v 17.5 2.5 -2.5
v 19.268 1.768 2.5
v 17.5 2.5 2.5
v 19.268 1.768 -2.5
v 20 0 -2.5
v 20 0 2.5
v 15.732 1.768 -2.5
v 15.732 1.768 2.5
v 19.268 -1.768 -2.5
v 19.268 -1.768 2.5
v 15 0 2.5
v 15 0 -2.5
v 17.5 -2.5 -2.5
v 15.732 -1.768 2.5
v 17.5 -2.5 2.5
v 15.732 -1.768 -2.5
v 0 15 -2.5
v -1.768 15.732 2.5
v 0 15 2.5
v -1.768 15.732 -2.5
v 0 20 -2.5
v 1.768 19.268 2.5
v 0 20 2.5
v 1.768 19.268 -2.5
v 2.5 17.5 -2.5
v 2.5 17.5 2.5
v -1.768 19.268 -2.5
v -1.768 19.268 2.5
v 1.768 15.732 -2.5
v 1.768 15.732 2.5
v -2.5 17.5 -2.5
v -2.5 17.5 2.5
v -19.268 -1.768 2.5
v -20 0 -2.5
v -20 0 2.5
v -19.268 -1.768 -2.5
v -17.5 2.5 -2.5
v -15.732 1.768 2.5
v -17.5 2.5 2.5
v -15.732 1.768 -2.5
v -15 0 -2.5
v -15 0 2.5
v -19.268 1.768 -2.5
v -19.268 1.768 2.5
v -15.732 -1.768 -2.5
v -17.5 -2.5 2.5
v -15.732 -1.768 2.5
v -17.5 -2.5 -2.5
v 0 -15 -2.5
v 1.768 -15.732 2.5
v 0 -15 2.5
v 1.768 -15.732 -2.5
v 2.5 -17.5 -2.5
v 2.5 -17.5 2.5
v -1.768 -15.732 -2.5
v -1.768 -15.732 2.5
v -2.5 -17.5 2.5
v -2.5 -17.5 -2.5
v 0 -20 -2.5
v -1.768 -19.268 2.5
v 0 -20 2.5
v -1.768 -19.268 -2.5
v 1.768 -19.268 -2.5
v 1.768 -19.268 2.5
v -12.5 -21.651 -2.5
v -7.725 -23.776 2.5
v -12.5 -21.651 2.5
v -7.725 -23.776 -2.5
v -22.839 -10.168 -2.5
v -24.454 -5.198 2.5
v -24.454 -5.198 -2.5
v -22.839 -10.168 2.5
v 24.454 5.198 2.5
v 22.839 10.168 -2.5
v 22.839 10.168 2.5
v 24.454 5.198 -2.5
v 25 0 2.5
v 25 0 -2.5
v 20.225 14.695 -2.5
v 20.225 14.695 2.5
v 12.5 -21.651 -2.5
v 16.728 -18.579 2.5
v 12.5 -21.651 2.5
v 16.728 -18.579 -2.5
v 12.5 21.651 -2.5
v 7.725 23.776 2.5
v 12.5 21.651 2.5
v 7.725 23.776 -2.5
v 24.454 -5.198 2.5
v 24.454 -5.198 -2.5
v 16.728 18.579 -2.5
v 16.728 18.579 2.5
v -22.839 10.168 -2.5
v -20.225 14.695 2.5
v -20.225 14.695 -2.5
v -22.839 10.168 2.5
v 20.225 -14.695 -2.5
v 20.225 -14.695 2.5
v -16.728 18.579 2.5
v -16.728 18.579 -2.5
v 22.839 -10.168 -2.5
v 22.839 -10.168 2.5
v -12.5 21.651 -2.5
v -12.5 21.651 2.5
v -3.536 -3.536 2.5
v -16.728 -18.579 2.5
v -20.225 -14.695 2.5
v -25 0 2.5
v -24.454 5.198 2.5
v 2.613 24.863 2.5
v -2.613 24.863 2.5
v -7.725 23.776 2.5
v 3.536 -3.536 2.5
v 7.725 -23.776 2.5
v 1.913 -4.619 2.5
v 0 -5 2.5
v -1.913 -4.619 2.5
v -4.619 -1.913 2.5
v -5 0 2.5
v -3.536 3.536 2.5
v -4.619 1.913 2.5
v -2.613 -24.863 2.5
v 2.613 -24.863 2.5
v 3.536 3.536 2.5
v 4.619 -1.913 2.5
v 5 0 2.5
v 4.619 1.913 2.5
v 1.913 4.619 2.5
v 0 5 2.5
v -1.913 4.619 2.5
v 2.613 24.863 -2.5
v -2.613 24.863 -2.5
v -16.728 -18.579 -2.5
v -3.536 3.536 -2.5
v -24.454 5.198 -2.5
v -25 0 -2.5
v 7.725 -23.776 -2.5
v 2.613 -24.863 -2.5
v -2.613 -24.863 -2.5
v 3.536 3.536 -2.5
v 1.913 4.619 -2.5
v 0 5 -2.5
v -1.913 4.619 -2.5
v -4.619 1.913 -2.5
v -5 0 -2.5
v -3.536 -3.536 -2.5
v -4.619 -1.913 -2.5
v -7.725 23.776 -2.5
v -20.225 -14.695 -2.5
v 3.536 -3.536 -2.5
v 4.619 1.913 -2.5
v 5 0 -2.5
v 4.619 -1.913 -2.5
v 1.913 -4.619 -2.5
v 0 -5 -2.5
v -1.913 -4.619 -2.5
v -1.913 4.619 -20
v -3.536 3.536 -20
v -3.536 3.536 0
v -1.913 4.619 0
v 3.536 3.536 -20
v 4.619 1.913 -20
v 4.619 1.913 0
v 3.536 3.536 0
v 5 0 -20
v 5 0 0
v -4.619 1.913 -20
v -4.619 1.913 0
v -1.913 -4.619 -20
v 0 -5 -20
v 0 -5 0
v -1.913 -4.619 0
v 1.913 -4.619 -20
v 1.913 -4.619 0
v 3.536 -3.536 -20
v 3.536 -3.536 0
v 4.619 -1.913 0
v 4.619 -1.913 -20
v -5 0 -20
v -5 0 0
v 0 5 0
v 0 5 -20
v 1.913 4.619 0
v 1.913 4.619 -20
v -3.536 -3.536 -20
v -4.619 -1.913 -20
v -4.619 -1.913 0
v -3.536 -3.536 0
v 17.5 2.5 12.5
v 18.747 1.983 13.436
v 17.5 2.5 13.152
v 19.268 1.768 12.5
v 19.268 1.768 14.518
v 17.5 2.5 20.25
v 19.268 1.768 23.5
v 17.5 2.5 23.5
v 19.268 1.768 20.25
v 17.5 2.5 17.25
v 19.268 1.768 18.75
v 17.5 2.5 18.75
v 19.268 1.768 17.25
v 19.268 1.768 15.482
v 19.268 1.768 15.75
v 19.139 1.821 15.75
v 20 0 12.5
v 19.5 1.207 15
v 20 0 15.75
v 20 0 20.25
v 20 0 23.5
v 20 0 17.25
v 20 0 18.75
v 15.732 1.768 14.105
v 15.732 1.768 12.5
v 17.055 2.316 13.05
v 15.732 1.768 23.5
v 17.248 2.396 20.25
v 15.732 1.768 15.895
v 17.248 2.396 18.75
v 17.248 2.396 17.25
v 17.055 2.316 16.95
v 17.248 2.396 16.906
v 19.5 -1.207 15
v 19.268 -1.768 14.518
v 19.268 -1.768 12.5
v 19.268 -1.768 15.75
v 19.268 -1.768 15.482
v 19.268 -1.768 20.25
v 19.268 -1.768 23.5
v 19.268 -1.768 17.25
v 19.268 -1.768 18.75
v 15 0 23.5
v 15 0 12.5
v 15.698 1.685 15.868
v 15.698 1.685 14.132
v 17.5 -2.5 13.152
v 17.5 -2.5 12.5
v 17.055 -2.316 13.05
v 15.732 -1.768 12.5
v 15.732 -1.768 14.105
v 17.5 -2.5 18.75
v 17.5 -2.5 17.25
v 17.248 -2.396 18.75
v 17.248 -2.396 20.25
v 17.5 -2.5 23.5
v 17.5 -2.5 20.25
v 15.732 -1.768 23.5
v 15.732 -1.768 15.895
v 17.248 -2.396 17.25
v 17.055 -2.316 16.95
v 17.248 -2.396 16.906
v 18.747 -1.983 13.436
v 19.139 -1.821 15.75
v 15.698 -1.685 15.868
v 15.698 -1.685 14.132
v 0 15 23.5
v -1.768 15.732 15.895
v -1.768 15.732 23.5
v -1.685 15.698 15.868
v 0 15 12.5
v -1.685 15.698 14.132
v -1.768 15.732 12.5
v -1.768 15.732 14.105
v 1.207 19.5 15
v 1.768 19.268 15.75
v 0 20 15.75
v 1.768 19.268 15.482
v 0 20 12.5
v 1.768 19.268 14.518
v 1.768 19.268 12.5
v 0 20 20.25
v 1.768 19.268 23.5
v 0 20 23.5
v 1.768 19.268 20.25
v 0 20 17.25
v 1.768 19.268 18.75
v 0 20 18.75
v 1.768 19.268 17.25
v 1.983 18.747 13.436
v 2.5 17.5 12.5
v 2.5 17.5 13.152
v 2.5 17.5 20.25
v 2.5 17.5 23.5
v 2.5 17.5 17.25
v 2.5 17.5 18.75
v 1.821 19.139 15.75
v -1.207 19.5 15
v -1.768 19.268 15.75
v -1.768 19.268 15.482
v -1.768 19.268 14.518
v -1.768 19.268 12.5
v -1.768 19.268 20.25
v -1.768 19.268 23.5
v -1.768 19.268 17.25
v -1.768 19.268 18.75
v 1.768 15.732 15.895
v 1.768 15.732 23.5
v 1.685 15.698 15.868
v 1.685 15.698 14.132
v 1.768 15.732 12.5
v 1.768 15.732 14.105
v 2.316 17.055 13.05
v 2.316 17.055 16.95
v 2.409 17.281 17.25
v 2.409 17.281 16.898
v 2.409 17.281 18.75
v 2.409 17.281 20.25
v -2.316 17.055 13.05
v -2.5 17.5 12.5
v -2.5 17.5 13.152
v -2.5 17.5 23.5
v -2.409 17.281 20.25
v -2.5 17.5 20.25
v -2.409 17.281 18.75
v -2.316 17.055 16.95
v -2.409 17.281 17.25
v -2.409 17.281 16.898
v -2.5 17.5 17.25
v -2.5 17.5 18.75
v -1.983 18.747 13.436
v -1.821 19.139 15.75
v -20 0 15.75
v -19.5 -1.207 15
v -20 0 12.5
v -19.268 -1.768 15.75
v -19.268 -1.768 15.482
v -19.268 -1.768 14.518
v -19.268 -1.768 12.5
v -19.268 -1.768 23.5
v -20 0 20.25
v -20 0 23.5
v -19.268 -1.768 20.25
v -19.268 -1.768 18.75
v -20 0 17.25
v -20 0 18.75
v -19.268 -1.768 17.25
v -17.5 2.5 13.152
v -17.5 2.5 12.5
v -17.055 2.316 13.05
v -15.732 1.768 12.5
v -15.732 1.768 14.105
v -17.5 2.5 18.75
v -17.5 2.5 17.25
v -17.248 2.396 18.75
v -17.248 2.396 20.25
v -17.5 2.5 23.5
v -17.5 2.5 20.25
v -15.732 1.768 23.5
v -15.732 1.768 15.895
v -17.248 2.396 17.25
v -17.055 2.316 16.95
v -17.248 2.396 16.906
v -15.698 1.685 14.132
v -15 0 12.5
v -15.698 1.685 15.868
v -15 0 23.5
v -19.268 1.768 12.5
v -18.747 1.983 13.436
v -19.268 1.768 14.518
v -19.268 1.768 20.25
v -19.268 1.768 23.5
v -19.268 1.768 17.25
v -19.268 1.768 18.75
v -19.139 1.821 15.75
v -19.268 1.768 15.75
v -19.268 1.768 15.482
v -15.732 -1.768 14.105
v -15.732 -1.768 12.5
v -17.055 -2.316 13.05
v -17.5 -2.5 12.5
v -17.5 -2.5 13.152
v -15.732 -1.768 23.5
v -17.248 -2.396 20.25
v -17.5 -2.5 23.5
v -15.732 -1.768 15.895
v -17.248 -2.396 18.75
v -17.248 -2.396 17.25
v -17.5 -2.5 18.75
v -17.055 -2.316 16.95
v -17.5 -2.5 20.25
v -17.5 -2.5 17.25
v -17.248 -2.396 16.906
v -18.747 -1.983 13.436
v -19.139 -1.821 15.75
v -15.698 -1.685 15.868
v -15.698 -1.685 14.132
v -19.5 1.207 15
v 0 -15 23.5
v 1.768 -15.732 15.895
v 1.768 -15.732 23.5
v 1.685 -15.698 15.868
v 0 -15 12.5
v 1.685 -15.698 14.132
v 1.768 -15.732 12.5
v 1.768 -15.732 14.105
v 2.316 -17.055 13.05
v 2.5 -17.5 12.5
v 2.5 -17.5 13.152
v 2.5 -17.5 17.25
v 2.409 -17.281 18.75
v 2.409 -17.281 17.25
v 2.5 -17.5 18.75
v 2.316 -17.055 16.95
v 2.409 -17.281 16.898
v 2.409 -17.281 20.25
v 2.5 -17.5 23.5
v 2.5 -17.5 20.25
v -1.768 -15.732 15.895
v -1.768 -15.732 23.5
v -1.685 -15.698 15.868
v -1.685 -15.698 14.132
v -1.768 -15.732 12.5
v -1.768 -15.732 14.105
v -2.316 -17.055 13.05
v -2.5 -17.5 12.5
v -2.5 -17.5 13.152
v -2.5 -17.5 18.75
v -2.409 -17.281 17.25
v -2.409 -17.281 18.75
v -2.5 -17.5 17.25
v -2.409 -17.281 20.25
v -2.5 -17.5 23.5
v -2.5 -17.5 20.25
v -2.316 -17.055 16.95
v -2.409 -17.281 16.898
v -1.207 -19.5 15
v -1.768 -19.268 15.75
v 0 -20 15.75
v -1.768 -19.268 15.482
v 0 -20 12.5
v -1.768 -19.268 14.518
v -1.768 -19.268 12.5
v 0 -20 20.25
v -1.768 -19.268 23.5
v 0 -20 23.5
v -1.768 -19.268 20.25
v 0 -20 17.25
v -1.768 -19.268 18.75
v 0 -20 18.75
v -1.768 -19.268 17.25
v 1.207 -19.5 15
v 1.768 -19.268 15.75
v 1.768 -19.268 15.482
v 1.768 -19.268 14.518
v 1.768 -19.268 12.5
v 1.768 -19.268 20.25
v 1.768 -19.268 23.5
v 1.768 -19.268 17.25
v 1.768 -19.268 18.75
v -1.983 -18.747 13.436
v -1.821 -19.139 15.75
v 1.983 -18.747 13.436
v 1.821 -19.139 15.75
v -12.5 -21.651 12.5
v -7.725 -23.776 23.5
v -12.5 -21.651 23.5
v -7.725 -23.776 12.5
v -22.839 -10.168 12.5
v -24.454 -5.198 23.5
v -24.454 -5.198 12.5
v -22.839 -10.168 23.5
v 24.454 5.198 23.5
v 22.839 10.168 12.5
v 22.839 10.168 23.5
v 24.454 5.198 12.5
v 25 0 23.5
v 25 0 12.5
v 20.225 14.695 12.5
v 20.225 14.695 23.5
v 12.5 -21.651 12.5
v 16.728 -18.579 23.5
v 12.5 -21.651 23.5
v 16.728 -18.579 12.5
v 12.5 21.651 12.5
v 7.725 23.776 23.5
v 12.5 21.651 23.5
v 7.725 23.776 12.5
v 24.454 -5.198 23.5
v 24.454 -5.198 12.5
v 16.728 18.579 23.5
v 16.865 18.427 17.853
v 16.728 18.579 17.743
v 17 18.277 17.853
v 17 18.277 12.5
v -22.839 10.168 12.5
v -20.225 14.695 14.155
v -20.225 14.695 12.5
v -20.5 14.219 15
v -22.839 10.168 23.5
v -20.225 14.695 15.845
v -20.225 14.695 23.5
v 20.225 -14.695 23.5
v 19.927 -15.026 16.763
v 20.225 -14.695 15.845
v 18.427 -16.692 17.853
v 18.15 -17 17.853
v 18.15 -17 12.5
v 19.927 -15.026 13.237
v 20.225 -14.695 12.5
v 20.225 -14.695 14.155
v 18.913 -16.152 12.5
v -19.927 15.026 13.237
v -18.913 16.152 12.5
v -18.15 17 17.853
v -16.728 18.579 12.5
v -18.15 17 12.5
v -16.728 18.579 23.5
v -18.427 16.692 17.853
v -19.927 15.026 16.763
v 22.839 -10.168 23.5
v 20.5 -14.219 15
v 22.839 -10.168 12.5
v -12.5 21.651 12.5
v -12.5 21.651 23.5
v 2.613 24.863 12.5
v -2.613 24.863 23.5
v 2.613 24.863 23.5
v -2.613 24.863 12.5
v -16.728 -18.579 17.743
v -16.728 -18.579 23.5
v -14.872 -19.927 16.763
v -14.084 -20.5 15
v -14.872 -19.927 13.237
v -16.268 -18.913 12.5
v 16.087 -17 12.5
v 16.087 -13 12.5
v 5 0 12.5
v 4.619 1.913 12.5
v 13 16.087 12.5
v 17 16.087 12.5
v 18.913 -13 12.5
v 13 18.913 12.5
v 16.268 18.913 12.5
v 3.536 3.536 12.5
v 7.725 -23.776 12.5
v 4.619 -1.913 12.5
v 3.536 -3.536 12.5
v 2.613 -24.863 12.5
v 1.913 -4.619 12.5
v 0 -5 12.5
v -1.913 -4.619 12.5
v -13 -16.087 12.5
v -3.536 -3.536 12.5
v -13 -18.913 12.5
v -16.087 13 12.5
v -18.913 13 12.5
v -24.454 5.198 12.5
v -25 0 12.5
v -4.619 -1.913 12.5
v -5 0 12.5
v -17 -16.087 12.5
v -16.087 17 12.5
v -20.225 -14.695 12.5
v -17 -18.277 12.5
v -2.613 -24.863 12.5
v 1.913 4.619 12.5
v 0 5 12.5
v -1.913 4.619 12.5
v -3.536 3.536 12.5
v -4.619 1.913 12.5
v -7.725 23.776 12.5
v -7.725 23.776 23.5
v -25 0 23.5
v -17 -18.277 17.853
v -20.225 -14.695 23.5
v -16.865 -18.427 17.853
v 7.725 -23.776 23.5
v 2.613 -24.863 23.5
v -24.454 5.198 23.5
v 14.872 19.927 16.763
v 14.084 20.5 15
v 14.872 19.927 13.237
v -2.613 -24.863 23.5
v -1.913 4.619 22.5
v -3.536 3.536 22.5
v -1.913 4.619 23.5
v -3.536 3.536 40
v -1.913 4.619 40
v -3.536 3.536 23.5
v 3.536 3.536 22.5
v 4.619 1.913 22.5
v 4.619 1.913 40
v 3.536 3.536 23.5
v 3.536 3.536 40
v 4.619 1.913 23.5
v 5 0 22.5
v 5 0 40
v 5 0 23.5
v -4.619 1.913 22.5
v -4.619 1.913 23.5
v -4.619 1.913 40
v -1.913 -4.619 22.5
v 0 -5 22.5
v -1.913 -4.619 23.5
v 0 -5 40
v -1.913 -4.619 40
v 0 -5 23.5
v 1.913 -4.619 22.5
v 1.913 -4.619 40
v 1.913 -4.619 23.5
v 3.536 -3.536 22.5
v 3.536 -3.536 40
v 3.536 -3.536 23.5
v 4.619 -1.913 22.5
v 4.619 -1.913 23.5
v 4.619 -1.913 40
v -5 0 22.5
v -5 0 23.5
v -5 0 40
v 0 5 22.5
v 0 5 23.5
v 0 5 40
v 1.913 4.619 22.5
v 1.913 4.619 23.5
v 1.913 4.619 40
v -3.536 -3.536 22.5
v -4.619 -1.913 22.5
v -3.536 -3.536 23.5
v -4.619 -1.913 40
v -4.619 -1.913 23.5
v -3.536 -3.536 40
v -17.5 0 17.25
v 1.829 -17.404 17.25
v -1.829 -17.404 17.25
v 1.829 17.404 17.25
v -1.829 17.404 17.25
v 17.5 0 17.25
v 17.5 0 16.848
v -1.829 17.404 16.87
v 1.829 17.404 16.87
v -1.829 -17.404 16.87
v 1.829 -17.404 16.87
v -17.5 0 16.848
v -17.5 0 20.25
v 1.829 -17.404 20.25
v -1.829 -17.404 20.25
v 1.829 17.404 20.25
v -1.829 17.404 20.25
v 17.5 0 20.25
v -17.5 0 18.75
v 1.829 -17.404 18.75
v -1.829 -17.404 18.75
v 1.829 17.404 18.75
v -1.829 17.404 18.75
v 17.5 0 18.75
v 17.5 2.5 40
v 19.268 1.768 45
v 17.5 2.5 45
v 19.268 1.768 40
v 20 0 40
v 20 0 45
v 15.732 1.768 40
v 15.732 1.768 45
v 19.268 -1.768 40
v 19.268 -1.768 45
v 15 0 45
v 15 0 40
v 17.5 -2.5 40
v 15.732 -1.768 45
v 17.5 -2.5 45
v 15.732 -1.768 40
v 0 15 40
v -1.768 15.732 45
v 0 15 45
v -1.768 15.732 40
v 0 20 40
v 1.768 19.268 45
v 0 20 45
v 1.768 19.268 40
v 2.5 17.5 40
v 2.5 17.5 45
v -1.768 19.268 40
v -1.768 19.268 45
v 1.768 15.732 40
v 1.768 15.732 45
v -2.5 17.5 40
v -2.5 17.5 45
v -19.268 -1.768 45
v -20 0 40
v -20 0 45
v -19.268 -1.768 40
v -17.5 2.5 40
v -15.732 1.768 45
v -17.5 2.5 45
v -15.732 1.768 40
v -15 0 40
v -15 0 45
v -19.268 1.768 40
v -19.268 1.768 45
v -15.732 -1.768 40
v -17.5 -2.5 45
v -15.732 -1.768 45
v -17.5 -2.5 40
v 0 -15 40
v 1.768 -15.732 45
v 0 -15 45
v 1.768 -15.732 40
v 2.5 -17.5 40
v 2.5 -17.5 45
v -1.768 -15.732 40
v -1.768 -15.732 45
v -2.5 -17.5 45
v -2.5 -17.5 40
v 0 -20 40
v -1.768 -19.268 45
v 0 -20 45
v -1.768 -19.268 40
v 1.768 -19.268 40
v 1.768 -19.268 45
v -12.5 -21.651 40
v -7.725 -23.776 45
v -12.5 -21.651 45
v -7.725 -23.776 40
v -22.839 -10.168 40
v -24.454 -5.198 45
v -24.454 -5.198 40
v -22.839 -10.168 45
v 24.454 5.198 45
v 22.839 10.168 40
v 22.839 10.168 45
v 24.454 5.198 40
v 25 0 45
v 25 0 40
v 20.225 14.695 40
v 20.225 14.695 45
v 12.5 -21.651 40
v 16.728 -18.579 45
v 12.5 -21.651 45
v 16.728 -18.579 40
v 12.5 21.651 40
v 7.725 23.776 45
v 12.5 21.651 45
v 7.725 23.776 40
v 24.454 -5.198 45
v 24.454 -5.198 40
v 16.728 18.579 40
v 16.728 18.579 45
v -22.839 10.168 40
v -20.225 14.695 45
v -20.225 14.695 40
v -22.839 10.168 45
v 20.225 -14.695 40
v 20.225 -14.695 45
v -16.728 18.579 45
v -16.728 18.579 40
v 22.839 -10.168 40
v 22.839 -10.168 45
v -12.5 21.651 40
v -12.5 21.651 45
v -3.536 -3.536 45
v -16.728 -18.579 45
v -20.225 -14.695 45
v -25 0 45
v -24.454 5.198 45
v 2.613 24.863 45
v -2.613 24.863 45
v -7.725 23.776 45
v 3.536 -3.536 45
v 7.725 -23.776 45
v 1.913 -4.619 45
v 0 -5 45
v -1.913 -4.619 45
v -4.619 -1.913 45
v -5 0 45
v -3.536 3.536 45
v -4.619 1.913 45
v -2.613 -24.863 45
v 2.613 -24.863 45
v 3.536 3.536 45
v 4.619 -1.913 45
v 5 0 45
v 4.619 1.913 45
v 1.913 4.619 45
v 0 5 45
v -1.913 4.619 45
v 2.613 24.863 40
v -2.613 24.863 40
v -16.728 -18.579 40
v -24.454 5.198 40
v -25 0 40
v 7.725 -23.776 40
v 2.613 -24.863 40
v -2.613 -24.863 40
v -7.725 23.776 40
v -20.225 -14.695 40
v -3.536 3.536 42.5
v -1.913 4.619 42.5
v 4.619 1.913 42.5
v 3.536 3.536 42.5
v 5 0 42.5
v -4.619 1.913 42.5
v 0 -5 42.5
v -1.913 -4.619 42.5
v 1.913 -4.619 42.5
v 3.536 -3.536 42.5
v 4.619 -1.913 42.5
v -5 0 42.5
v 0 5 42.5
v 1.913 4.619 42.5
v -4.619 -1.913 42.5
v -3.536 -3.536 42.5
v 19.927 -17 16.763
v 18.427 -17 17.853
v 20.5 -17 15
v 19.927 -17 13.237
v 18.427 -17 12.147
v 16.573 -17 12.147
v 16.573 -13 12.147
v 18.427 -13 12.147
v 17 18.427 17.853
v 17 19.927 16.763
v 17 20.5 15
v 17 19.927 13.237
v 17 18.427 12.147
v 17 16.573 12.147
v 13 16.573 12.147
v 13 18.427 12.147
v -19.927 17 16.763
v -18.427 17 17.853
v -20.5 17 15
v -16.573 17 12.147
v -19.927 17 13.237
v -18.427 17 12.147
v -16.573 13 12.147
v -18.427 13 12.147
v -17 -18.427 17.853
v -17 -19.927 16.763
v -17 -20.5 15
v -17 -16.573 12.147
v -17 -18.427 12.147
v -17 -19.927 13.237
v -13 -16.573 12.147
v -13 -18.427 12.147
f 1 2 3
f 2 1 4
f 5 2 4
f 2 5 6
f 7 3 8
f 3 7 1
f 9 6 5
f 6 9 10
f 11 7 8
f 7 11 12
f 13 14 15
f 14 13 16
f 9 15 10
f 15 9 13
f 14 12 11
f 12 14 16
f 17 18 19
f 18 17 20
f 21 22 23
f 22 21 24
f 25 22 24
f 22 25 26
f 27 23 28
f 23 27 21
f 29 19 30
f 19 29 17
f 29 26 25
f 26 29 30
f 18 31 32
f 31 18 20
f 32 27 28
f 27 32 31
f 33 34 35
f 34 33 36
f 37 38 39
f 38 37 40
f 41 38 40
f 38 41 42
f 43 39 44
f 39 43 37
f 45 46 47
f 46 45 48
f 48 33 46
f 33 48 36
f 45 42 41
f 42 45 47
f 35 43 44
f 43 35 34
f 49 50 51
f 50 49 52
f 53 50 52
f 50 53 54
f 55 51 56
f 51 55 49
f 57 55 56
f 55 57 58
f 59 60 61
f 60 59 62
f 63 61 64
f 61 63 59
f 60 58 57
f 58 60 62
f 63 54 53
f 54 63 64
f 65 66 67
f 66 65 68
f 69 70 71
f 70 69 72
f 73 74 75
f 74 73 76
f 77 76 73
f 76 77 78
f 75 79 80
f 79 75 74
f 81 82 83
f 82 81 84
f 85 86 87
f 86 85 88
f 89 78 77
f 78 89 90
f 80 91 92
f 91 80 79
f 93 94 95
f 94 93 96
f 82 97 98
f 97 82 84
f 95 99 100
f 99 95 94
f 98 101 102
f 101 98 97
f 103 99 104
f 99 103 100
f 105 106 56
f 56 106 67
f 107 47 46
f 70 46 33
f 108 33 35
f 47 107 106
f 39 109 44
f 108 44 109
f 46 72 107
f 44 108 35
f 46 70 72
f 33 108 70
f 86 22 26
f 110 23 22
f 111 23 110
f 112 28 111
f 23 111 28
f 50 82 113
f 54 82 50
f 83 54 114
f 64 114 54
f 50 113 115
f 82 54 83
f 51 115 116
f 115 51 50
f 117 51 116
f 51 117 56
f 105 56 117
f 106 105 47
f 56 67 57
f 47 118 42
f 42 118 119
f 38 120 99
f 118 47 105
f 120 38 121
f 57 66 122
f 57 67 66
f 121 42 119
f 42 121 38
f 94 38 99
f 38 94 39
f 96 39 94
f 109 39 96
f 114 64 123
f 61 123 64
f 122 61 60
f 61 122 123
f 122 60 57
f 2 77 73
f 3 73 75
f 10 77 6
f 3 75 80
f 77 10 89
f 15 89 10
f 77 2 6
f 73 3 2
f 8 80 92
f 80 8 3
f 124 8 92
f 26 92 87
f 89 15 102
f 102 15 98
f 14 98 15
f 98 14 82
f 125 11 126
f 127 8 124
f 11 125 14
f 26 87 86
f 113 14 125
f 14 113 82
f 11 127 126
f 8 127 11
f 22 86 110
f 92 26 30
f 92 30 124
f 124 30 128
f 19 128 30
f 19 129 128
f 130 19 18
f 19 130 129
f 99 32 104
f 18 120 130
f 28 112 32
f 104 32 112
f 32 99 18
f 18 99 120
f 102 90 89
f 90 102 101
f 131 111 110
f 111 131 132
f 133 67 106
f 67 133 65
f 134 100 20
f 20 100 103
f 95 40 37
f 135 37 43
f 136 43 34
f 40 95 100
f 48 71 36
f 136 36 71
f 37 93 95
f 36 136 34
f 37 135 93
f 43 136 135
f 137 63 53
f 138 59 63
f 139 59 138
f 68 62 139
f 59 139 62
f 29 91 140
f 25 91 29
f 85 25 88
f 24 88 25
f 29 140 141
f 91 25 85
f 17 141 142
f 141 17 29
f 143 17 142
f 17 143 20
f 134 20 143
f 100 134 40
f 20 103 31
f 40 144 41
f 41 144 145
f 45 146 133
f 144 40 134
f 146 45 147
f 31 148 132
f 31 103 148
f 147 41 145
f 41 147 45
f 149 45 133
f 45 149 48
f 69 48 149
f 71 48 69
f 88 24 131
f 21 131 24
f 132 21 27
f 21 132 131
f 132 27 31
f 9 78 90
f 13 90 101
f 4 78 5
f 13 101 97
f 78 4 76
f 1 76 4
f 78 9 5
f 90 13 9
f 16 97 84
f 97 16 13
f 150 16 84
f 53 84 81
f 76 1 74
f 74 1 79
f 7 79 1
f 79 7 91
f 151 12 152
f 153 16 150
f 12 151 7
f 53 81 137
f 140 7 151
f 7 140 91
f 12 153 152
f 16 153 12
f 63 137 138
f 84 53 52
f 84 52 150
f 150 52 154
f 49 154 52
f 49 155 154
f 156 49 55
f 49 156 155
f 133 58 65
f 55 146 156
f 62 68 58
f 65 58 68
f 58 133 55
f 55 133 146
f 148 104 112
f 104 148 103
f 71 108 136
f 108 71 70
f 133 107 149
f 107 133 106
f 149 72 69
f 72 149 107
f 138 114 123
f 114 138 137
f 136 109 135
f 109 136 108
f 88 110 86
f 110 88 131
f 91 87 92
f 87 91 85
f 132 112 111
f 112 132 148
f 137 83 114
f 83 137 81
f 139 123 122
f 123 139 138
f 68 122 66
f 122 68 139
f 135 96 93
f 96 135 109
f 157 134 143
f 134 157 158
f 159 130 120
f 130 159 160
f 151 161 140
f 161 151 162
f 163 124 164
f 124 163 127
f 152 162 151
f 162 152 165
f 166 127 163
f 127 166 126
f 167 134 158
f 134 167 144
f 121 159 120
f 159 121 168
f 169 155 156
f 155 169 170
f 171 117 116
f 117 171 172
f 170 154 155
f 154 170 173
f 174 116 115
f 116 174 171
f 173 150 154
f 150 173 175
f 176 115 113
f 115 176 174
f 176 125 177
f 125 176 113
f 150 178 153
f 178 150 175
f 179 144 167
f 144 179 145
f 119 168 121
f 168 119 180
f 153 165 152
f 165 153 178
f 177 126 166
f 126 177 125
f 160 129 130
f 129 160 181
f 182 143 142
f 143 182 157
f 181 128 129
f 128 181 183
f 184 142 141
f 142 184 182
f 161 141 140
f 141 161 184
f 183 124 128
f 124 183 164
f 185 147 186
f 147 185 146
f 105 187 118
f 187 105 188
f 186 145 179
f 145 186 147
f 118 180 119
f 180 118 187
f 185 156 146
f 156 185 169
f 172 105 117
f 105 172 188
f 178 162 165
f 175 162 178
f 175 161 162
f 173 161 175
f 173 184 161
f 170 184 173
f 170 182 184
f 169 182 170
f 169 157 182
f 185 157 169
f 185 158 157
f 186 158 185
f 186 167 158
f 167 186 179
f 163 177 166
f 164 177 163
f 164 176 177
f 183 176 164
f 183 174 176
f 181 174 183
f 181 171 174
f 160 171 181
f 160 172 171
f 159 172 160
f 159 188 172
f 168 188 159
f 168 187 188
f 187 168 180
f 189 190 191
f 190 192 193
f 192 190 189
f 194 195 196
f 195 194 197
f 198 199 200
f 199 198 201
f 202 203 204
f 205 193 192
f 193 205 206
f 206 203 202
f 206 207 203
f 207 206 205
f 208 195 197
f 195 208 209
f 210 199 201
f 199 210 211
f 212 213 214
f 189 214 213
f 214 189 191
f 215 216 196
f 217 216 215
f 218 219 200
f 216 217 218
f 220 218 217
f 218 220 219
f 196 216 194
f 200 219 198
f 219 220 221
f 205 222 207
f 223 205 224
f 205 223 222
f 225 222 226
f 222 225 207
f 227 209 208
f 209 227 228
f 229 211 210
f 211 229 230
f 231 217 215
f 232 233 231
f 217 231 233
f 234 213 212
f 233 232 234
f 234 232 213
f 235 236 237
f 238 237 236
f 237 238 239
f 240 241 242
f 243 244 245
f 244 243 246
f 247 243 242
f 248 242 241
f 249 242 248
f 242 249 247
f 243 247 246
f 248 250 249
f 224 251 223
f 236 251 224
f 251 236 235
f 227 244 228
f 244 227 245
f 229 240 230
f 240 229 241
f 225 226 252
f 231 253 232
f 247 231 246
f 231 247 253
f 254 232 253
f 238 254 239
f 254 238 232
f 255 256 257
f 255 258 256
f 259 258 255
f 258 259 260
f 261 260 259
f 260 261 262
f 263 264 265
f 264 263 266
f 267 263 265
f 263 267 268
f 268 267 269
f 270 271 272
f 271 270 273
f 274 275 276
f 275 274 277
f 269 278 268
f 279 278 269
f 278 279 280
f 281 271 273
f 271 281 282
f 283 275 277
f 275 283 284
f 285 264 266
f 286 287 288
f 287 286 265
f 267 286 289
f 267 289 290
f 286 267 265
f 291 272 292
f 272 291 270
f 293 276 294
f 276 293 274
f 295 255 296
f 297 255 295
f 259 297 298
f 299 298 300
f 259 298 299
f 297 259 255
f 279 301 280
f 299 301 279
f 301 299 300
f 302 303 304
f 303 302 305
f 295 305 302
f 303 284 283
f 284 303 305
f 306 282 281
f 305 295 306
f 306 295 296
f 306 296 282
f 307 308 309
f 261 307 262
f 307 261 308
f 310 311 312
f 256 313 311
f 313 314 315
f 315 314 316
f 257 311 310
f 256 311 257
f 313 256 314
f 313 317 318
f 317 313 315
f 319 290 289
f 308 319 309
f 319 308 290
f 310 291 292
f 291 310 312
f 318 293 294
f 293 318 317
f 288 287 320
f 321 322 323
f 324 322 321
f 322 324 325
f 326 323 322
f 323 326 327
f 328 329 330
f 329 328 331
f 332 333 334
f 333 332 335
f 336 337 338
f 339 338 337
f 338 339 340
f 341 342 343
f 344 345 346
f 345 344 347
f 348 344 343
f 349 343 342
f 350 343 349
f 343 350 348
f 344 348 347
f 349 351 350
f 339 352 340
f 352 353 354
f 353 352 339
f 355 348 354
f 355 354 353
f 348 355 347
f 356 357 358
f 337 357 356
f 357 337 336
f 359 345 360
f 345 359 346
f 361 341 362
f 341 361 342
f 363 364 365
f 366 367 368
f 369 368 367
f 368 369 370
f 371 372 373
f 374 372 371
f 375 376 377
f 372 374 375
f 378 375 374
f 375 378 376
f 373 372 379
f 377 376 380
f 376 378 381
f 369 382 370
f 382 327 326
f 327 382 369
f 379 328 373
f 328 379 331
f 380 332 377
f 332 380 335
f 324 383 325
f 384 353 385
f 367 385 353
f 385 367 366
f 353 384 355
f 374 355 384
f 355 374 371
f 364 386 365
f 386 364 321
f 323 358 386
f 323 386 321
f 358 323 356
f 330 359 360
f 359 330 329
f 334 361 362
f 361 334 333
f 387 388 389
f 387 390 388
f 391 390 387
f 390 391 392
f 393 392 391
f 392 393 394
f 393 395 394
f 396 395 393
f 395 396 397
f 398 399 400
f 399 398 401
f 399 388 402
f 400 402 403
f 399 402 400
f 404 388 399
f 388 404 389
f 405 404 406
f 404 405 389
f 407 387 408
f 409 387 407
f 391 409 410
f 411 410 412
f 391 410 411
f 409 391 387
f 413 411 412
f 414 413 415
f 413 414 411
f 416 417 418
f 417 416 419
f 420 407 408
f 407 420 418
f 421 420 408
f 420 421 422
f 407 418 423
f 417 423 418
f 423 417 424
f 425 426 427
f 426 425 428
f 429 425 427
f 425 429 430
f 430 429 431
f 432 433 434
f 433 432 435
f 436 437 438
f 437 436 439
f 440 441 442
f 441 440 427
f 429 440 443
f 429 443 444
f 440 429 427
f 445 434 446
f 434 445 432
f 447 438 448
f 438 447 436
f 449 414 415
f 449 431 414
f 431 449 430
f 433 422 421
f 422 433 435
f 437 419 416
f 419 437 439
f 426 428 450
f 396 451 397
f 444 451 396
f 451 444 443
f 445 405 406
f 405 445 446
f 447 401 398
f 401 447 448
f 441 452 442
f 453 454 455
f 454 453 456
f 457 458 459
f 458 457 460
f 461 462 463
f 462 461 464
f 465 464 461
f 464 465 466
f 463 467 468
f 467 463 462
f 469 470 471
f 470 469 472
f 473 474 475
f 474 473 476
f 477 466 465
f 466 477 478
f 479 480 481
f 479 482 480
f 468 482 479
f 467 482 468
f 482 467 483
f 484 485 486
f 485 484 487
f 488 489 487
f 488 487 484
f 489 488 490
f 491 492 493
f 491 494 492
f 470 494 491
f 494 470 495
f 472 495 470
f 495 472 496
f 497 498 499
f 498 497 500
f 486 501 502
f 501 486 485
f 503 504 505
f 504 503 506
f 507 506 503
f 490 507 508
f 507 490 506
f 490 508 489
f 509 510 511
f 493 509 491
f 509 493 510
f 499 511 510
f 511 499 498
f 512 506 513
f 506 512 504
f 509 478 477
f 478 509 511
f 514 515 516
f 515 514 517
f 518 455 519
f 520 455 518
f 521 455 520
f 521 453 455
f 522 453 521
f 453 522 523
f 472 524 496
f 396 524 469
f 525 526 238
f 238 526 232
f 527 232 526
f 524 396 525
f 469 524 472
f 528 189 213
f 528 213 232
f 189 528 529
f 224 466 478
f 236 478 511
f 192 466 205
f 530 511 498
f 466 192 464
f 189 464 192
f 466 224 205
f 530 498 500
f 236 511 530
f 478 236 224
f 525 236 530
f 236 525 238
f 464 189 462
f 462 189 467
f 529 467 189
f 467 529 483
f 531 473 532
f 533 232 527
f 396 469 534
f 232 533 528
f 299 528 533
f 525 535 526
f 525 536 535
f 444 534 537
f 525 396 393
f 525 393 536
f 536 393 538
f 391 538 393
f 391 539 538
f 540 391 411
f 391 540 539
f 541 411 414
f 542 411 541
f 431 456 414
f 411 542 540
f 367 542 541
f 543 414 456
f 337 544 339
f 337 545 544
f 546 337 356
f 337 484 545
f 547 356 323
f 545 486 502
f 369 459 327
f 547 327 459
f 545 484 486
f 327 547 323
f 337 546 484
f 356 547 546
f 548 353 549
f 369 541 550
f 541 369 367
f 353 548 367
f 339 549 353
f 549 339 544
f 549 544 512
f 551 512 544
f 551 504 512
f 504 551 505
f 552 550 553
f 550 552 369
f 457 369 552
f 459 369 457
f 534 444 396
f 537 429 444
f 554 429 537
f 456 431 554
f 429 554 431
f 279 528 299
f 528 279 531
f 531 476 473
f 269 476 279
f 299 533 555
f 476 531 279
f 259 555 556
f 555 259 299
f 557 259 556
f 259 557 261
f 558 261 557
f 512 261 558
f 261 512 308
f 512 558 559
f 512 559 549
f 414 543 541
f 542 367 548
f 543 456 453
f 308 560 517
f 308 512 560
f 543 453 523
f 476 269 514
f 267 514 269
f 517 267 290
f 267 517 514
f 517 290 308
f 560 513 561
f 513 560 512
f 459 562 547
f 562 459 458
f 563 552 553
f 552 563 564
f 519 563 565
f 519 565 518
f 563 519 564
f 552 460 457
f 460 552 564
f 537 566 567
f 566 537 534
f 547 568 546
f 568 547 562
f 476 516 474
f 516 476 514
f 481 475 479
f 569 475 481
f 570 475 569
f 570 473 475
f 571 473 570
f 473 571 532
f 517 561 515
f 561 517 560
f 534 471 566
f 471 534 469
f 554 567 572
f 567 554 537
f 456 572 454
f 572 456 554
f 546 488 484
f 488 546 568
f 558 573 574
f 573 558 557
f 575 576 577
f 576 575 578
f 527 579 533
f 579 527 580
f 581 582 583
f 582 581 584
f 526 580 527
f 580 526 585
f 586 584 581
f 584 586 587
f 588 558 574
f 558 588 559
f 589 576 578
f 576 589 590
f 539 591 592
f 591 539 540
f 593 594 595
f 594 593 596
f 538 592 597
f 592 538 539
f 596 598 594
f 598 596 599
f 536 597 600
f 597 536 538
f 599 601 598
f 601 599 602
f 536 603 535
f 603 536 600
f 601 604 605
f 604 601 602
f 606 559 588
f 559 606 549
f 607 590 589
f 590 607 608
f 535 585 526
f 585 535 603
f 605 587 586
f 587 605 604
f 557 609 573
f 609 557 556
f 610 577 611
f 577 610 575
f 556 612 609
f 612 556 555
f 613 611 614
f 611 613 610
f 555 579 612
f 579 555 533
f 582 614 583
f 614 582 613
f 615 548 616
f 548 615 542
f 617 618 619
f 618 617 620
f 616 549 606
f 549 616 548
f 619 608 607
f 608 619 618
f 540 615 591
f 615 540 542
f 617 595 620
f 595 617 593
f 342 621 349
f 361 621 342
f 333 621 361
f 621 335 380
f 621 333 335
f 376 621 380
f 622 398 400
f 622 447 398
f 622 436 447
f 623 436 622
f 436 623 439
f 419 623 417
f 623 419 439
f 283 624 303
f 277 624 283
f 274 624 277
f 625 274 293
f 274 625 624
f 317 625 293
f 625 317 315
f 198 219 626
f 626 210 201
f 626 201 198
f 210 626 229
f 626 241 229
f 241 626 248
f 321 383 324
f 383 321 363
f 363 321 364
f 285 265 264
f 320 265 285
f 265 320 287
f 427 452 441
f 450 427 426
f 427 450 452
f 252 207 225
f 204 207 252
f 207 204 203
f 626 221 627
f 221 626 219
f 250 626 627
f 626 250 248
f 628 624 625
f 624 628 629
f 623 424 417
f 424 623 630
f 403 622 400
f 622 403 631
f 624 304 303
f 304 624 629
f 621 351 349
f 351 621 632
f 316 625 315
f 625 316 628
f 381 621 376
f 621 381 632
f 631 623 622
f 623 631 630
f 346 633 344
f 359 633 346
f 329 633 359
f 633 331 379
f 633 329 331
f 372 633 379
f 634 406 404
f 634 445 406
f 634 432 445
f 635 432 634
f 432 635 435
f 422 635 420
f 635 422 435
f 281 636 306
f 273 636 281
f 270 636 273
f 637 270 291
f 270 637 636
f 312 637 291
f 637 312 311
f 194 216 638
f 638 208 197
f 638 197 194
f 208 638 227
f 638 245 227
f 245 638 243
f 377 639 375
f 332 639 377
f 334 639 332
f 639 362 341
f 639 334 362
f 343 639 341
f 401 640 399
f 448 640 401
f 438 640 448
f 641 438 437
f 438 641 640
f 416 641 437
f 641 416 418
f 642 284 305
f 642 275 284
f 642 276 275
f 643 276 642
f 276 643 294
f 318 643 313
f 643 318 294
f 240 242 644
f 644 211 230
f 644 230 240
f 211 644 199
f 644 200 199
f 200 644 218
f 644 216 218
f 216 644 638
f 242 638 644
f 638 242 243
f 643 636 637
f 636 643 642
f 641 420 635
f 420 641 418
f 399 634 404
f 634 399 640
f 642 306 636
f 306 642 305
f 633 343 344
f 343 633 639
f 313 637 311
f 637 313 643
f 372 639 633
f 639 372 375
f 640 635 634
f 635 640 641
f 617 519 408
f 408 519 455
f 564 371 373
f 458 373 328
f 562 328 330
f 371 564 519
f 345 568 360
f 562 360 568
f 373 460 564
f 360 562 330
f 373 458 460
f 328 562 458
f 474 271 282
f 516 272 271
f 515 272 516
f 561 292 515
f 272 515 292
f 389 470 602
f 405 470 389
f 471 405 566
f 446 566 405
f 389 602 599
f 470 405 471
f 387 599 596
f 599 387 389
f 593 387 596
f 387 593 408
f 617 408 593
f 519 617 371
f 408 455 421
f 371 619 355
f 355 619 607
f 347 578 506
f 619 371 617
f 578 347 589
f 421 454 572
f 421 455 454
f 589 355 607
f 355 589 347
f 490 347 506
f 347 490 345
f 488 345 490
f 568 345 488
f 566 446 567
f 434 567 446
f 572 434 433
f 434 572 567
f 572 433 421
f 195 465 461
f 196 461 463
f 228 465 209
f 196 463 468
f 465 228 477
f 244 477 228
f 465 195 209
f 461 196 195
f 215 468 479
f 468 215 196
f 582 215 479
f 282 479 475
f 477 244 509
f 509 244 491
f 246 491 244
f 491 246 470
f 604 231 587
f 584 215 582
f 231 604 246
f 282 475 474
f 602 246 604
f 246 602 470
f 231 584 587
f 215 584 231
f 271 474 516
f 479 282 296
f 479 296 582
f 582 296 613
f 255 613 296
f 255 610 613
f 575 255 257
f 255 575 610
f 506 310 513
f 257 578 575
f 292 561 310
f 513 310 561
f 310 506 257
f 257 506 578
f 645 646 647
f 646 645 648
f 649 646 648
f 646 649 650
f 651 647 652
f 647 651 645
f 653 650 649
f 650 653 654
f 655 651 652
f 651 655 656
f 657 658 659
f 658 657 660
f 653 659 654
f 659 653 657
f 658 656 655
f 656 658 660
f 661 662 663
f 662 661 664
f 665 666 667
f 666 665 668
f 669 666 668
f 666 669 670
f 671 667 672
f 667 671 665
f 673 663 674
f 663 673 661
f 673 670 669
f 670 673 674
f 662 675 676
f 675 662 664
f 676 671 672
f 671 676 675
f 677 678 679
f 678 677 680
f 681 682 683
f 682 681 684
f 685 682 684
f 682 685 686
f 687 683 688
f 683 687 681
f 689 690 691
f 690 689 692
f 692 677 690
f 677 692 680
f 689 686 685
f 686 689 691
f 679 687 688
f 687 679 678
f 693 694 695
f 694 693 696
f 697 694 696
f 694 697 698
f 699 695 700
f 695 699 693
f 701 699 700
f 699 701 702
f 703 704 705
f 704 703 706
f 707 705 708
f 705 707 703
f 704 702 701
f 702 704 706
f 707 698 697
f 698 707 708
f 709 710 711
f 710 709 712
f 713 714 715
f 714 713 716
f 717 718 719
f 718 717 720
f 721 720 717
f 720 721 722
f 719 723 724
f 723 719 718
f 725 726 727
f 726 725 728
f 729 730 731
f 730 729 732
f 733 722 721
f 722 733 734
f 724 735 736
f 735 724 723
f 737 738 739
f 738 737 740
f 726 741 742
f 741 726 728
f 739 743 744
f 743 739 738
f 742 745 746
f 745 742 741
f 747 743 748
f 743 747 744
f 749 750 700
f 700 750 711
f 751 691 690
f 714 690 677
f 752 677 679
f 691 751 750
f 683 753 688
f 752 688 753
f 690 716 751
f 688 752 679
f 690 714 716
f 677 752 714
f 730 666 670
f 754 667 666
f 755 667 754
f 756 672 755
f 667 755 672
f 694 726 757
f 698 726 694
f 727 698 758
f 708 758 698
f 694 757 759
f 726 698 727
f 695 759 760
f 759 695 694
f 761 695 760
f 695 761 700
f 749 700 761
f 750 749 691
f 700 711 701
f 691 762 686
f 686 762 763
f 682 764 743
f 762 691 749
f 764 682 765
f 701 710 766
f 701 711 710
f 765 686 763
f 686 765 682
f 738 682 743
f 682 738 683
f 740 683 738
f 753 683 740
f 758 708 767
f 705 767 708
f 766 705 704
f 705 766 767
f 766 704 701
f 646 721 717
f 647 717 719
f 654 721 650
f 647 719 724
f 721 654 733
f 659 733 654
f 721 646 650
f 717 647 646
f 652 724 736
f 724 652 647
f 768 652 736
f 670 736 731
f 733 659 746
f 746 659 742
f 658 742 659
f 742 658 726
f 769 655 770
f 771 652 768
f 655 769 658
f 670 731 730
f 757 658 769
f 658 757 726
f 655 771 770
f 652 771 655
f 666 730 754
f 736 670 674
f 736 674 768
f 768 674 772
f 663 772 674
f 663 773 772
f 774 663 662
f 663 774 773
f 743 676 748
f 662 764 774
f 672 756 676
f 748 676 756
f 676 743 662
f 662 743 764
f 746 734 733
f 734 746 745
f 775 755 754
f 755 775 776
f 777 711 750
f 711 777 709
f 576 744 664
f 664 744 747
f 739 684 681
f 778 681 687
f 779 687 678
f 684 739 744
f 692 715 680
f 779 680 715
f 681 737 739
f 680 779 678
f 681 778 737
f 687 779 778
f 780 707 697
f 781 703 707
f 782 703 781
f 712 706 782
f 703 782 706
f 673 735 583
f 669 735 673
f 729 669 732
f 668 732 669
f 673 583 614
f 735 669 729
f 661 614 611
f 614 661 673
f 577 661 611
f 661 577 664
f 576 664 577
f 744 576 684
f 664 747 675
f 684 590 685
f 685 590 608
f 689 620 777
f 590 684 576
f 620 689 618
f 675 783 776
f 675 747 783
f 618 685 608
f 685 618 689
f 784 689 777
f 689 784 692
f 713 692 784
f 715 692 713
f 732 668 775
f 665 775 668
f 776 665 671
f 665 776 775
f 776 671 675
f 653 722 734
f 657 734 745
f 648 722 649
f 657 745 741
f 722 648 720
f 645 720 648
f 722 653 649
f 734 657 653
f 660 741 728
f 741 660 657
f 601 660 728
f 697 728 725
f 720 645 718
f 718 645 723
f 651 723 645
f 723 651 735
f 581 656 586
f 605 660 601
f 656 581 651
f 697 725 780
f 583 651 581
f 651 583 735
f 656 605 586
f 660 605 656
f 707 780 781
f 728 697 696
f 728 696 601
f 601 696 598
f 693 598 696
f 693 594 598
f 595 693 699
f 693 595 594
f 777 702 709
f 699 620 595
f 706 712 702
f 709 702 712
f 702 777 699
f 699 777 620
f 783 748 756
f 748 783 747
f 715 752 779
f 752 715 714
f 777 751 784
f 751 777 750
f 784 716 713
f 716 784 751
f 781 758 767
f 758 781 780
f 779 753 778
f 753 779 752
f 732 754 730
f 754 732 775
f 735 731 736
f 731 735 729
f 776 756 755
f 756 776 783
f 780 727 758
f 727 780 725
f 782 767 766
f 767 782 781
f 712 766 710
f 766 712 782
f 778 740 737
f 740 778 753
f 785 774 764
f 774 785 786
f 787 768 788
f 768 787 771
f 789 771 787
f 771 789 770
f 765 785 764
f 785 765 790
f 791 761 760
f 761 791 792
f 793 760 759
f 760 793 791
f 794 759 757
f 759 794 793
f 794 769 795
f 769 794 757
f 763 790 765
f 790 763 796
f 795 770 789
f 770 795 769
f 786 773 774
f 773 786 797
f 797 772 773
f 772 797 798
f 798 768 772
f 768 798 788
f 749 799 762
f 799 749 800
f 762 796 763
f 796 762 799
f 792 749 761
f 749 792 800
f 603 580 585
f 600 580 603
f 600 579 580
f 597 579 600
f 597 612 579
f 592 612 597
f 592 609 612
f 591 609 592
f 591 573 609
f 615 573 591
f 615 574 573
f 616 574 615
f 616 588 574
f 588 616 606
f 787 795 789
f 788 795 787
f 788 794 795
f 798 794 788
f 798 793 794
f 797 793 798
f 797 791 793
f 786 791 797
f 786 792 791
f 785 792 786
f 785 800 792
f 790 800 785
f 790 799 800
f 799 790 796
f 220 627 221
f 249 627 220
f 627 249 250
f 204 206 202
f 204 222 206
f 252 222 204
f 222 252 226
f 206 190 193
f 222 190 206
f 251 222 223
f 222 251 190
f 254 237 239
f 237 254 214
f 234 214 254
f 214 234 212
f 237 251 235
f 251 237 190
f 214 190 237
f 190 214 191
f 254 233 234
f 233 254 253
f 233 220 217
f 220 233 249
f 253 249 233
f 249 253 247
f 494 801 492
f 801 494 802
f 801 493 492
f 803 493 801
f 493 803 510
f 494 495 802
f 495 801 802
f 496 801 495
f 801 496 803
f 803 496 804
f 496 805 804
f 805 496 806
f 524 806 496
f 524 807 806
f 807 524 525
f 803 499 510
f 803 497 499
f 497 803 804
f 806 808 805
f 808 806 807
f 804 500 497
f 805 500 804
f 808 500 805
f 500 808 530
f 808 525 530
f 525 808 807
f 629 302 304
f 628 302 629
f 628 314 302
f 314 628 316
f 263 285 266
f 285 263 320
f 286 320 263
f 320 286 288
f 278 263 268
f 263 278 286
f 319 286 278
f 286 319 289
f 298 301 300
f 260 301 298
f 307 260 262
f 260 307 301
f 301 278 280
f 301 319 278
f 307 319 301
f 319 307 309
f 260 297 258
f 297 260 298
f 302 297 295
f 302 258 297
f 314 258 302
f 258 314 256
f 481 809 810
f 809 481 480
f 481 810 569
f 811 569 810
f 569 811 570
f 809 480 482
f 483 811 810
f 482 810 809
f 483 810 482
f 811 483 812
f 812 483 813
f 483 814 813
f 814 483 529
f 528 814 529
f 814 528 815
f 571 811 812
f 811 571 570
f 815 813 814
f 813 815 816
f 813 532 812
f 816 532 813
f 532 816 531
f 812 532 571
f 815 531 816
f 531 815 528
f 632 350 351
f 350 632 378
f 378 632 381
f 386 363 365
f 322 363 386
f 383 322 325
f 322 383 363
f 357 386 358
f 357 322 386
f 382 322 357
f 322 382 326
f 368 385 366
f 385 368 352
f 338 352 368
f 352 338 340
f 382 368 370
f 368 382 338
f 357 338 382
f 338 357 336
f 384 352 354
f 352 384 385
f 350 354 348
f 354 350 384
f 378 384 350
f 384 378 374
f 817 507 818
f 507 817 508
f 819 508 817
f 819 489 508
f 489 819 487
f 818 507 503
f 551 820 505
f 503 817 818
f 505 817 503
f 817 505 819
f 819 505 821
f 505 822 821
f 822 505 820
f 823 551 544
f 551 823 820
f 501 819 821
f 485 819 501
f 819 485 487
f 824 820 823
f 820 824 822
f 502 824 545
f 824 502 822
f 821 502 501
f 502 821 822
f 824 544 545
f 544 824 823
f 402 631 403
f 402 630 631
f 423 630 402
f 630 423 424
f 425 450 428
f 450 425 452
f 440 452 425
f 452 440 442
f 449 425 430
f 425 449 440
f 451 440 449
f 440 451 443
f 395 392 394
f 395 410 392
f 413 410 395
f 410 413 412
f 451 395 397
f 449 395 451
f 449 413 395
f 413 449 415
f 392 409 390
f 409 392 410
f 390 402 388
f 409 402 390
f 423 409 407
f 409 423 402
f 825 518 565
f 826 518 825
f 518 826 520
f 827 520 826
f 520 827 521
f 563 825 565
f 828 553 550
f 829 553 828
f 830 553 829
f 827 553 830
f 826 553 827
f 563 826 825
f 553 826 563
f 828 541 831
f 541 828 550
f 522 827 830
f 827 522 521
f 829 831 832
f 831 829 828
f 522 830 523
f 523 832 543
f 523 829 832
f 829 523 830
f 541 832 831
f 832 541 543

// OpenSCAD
// Parameters
shaft_diameter = 10;
flange_diameter = 50;
flange_thickness = 5; // Reduced to make the flange thinner
spacer_thickness = 1.5; // Reduced to match the original model
bolt_hole_diameter = 5;
bolt_diameter = 4;
bolt_length = 30; // Increased to ensure bolts pass through the structure
nut_size = 6; // Adjusted to match the original model
nut_thickness = 4; // Adjusted to make nuts more visible
num_bolts = 4;
bolt_circle_diameter = 35;
shaft_length = 20; // Increased to match the original model

// Function to create a flange
module flange() {
    difference() {
        cylinder(d=flange_diameter, h=flange_thickness, center=true);
        cylinder(d=shaft_diameter, h=flange_thickness + 2, center=true);
        for (i = [0:num_bolts-1]) {
            angle = i * 360 / num_bolts;
            translate([bolt_circle_diameter/2 * cos(angle), bolt_circle_diameter/2 * sin(angle), 0])
                cylinder(d=bolt_hole_diameter, h=flange_thickness + 2, center=true);
        }
    }
}

// Function to create a spacer ring
module spacer_ring() {
    difference() {
        cylinder(d=flange_diameter, h=spacer_thickness, center=true);
        cylinder(d=bolt_circle_diameter, h=spacer_thickness + 2, center=true);
    }
}

// Function to create a bolt
module bolt() {
    union() {
        cylinder(d=bolt_diameter, h=bolt_length, center=true);
        translate([0, 0, bolt_length/2])
            cylinder(d=nut_size, h=nut_thickness, center=true);
    }
}

// Function to create the input/output craft
module craft() {
    union() {
        cylinder(d=shaft_diameter, h=shaft_length, center=true);
        translate([0, 0, shaft_length/2])
            flange();
    }
}

// Assemble the coupling
module coupling() {
    translate([0, 0, -shaft_length/2]) craft();
    translate([0, 0, shaft_length/2 + flange_thickness]) flange();
    translate([0, 0, shaft_length/2 + flange_thickness + spacer_thickness]) spacer_ring();
    translate([0, 0, shaft_length/2 + flange_thickness + 2 * spacer_thickness]) flange();
    translate([0, 0, shaft_length/2 + flange_thickness + 3 * spacer_thickness]) spacer_ring();
    translate([0, 0, shaft_length/2 + flange_thickness + 4 * spacer_thickness]) flange();
    translate([0, 0, shaft_length/2 + flange_thickness + 5 * spacer_thickness + shaft_length/2]) craft();
    
    // Bolts
    for (i = [0:num_bolts-1]) {
        angle = i * 360 / num_bolts;
        translate([bolt_circle_diameter/2 * cos(angle), bolt_circle_diameter/2 * sin(angle), shaft_length/2 + flange_thickness])
            rotate([90, 0, angle]) bolt();
    }
}

// Render the coupling
coupling();
